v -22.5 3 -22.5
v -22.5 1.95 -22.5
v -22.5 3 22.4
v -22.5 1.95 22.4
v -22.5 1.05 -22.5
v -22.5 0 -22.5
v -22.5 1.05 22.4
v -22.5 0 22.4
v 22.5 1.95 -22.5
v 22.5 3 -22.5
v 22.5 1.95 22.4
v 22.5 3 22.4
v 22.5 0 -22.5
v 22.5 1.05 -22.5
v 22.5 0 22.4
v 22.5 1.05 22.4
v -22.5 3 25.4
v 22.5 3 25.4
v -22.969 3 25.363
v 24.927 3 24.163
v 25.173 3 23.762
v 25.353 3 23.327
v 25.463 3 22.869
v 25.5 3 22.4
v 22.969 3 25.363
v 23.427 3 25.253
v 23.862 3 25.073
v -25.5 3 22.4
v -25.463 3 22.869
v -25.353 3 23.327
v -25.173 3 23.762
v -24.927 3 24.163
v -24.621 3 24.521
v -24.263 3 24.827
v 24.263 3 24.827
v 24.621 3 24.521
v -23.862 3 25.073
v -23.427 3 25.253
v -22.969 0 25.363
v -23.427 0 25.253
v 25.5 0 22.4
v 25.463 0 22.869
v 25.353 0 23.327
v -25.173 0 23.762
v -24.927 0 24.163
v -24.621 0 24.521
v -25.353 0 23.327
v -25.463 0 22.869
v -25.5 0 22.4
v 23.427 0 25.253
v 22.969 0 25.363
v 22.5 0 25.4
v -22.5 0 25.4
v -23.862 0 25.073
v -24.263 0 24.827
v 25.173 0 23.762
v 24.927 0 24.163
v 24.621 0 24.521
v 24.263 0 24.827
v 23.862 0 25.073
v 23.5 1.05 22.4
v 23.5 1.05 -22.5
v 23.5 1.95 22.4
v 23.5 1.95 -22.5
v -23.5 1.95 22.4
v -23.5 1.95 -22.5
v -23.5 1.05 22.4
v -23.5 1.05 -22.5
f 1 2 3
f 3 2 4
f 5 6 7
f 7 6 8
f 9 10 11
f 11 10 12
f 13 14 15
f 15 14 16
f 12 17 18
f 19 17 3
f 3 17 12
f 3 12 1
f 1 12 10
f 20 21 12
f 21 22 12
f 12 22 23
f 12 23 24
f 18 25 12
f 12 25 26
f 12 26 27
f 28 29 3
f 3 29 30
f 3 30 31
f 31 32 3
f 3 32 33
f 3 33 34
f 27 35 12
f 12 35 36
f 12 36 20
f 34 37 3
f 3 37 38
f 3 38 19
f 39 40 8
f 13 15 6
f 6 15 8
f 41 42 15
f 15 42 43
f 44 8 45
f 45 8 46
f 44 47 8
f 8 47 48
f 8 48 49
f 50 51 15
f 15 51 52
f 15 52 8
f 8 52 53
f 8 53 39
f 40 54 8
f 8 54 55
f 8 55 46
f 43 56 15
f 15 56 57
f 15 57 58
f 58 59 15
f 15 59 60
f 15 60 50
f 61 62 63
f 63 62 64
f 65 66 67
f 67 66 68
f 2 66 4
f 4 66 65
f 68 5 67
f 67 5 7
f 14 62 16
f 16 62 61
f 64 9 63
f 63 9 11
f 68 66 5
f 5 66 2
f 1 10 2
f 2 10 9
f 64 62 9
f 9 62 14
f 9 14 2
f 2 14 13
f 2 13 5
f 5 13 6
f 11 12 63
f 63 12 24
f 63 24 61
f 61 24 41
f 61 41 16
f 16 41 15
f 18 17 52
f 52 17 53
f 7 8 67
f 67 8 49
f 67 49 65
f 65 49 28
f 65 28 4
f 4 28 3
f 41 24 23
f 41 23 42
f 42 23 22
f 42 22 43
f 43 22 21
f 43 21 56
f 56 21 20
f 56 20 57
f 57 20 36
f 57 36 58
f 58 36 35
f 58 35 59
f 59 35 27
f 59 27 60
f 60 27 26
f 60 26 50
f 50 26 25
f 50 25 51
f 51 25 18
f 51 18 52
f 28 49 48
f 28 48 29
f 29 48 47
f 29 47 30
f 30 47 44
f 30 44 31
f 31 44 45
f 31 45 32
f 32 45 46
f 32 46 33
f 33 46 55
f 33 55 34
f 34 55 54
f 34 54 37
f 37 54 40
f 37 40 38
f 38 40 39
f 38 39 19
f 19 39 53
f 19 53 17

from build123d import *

# Parameters (mm, degrees)
SKETCH1_W           = 45
SKETCH1_H           = 45
BOSS_EXTRUDE1_DEPTH = 3
SKETCH29_W          = 45
SKETCH29_H          = 1
BOSS_EXTRUDE2_DEPTH = 1
SKETCH30_W          = 45
SKETCH30_H          = 1
BOSS_EXTRUDE3_DEPTH = 1
CUT_EXTRUDE2_DEPTH  = 1.5
SKETCH32_W          = 12
SKETCH32_H          = 1.5
BOSS_EXTRUDE4_DEPTH = 8
SKETCH33_W          = 1
SKETCH33_H          = 0.05
CUT_EXTRUDE3_DEPTH  = 86
SKETCH34_W          = 52.951386634
SKETCH34_H          = 17.48442651
CUT_EXTRUDE4_DEPTH  = 0.1
BOSS_EXTRUDE5_DEPTH = 3
FILLET1_R           = 3


with BuildPart() as part:
    # Sketch1 → Boss-Extrude1 (new body)
    with BuildSketch(Plane(origin=(0, 0, 0), x_dir=(1, 0, 0), z_dir=(0, 1, 0))):
        Rectangle(SKETCH1_W, SKETCH1_H)
    extrude(amount=BOSS_EXTRUDE1_DEPTH)

    # Sketch29 → Boss-Extrude2 (add)
    with BuildSketch(Plane(origin=(22.5, 0, 0), x_dir=(0, 0, -1), z_dir=(1, 0, 0))):
        with Locations((0, 1.5)):
            Rectangle(SKETCH29_W, SKETCH29_H)
    extrude(amount=BOSS_EXTRUDE2_DEPTH)

    # Sketch30 → Boss-Extrude3 (add)
    with BuildSketch(Plane.ZY.offset(22.5)):
        with Locations((0, 1.5)):
            Rectangle(SKETCH30_W, SKETCH30_H)
    extrude(amount=BOSS_EXTRUDE3_DEPTH)

    # Sketch31 → Cut-Extrude2 (cut)
    with BuildSketch(Plane(origin=(0, 3, 0), x_dir=(1, 0, 0), z_dir=(0, 1, 0))):
        Polygon((-2, -22.5), (-2, -18.5), (-6, -18.5), (-6, -14.5), (6, -14.5), (6, -18.5), (2, -18.5), (2, -22.5), align=None)
    extrude(amount=-CUT_EXTRUDE2_DEPTH, mode=Mode.SUBTRACT)

    # Sketch32 → Boss-Extrude4 (add)
    with BuildSketch(Plane.XY.offset(14.5)):
        with Locations((0, 2.25)):
            Rectangle(SKETCH32_W, SKETCH32_H)
    extrude(amount=BOSS_EXTRUDE4_DEPTH)

    # Sketch33 → Cut-Extrude3 (cut)
    with BuildSketch(Plane.XY.offset(22.5)):
        with Locations((-23, 1.975)):
            Rectangle(SKETCH33_W, SKETCH33_H)
        with Locations((-23, 1.025)):
            Rectangle(SKETCH33_W, SKETCH33_H)
        with Locations((23, 1.025)):
            Rectangle(SKETCH33_W, SKETCH33_H)
        with Locations((23, 1.975)):
            Rectangle(SKETCH33_W, SKETCH33_H)
    extrude(amount=-CUT_EXTRUDE3_DEPTH, mode=Mode.SUBTRACT)

    # Sketch34 → Cut-Extrude4 (cut)
    with BuildSketch(Plane.XY.offset(22.5)):
        Rectangle(SKETCH34_W, SKETCH34_H)
    extrude(amount=-CUT_EXTRUDE4_DEPTH, mode=Mode.SUBTRACT)

    # Sketch35 → Boss-Extrude5 (add)
    with BuildSketch(Plane.XY.offset(22.4)):
        Polygon((-22.5, 3), (25.5, 3), (25.5, 0), (-25.5, 0), (-25.5, 3), align=None)
    extrude(amount=BOSS_EXTRUDE5_DEPTH)

    # Fillet1
    fillet1_edges = [part.edges().sort_by_distance(p)[0] for p in [
        (25.5, 1.5, 25.4),
        (-25.5, 1.5, 25.4),
    ]]
    fillet(fillet1_edges, radius=FILLET1_R - 0.0001)  # a hair under: the kernel refuses the full size


solid = part.part
